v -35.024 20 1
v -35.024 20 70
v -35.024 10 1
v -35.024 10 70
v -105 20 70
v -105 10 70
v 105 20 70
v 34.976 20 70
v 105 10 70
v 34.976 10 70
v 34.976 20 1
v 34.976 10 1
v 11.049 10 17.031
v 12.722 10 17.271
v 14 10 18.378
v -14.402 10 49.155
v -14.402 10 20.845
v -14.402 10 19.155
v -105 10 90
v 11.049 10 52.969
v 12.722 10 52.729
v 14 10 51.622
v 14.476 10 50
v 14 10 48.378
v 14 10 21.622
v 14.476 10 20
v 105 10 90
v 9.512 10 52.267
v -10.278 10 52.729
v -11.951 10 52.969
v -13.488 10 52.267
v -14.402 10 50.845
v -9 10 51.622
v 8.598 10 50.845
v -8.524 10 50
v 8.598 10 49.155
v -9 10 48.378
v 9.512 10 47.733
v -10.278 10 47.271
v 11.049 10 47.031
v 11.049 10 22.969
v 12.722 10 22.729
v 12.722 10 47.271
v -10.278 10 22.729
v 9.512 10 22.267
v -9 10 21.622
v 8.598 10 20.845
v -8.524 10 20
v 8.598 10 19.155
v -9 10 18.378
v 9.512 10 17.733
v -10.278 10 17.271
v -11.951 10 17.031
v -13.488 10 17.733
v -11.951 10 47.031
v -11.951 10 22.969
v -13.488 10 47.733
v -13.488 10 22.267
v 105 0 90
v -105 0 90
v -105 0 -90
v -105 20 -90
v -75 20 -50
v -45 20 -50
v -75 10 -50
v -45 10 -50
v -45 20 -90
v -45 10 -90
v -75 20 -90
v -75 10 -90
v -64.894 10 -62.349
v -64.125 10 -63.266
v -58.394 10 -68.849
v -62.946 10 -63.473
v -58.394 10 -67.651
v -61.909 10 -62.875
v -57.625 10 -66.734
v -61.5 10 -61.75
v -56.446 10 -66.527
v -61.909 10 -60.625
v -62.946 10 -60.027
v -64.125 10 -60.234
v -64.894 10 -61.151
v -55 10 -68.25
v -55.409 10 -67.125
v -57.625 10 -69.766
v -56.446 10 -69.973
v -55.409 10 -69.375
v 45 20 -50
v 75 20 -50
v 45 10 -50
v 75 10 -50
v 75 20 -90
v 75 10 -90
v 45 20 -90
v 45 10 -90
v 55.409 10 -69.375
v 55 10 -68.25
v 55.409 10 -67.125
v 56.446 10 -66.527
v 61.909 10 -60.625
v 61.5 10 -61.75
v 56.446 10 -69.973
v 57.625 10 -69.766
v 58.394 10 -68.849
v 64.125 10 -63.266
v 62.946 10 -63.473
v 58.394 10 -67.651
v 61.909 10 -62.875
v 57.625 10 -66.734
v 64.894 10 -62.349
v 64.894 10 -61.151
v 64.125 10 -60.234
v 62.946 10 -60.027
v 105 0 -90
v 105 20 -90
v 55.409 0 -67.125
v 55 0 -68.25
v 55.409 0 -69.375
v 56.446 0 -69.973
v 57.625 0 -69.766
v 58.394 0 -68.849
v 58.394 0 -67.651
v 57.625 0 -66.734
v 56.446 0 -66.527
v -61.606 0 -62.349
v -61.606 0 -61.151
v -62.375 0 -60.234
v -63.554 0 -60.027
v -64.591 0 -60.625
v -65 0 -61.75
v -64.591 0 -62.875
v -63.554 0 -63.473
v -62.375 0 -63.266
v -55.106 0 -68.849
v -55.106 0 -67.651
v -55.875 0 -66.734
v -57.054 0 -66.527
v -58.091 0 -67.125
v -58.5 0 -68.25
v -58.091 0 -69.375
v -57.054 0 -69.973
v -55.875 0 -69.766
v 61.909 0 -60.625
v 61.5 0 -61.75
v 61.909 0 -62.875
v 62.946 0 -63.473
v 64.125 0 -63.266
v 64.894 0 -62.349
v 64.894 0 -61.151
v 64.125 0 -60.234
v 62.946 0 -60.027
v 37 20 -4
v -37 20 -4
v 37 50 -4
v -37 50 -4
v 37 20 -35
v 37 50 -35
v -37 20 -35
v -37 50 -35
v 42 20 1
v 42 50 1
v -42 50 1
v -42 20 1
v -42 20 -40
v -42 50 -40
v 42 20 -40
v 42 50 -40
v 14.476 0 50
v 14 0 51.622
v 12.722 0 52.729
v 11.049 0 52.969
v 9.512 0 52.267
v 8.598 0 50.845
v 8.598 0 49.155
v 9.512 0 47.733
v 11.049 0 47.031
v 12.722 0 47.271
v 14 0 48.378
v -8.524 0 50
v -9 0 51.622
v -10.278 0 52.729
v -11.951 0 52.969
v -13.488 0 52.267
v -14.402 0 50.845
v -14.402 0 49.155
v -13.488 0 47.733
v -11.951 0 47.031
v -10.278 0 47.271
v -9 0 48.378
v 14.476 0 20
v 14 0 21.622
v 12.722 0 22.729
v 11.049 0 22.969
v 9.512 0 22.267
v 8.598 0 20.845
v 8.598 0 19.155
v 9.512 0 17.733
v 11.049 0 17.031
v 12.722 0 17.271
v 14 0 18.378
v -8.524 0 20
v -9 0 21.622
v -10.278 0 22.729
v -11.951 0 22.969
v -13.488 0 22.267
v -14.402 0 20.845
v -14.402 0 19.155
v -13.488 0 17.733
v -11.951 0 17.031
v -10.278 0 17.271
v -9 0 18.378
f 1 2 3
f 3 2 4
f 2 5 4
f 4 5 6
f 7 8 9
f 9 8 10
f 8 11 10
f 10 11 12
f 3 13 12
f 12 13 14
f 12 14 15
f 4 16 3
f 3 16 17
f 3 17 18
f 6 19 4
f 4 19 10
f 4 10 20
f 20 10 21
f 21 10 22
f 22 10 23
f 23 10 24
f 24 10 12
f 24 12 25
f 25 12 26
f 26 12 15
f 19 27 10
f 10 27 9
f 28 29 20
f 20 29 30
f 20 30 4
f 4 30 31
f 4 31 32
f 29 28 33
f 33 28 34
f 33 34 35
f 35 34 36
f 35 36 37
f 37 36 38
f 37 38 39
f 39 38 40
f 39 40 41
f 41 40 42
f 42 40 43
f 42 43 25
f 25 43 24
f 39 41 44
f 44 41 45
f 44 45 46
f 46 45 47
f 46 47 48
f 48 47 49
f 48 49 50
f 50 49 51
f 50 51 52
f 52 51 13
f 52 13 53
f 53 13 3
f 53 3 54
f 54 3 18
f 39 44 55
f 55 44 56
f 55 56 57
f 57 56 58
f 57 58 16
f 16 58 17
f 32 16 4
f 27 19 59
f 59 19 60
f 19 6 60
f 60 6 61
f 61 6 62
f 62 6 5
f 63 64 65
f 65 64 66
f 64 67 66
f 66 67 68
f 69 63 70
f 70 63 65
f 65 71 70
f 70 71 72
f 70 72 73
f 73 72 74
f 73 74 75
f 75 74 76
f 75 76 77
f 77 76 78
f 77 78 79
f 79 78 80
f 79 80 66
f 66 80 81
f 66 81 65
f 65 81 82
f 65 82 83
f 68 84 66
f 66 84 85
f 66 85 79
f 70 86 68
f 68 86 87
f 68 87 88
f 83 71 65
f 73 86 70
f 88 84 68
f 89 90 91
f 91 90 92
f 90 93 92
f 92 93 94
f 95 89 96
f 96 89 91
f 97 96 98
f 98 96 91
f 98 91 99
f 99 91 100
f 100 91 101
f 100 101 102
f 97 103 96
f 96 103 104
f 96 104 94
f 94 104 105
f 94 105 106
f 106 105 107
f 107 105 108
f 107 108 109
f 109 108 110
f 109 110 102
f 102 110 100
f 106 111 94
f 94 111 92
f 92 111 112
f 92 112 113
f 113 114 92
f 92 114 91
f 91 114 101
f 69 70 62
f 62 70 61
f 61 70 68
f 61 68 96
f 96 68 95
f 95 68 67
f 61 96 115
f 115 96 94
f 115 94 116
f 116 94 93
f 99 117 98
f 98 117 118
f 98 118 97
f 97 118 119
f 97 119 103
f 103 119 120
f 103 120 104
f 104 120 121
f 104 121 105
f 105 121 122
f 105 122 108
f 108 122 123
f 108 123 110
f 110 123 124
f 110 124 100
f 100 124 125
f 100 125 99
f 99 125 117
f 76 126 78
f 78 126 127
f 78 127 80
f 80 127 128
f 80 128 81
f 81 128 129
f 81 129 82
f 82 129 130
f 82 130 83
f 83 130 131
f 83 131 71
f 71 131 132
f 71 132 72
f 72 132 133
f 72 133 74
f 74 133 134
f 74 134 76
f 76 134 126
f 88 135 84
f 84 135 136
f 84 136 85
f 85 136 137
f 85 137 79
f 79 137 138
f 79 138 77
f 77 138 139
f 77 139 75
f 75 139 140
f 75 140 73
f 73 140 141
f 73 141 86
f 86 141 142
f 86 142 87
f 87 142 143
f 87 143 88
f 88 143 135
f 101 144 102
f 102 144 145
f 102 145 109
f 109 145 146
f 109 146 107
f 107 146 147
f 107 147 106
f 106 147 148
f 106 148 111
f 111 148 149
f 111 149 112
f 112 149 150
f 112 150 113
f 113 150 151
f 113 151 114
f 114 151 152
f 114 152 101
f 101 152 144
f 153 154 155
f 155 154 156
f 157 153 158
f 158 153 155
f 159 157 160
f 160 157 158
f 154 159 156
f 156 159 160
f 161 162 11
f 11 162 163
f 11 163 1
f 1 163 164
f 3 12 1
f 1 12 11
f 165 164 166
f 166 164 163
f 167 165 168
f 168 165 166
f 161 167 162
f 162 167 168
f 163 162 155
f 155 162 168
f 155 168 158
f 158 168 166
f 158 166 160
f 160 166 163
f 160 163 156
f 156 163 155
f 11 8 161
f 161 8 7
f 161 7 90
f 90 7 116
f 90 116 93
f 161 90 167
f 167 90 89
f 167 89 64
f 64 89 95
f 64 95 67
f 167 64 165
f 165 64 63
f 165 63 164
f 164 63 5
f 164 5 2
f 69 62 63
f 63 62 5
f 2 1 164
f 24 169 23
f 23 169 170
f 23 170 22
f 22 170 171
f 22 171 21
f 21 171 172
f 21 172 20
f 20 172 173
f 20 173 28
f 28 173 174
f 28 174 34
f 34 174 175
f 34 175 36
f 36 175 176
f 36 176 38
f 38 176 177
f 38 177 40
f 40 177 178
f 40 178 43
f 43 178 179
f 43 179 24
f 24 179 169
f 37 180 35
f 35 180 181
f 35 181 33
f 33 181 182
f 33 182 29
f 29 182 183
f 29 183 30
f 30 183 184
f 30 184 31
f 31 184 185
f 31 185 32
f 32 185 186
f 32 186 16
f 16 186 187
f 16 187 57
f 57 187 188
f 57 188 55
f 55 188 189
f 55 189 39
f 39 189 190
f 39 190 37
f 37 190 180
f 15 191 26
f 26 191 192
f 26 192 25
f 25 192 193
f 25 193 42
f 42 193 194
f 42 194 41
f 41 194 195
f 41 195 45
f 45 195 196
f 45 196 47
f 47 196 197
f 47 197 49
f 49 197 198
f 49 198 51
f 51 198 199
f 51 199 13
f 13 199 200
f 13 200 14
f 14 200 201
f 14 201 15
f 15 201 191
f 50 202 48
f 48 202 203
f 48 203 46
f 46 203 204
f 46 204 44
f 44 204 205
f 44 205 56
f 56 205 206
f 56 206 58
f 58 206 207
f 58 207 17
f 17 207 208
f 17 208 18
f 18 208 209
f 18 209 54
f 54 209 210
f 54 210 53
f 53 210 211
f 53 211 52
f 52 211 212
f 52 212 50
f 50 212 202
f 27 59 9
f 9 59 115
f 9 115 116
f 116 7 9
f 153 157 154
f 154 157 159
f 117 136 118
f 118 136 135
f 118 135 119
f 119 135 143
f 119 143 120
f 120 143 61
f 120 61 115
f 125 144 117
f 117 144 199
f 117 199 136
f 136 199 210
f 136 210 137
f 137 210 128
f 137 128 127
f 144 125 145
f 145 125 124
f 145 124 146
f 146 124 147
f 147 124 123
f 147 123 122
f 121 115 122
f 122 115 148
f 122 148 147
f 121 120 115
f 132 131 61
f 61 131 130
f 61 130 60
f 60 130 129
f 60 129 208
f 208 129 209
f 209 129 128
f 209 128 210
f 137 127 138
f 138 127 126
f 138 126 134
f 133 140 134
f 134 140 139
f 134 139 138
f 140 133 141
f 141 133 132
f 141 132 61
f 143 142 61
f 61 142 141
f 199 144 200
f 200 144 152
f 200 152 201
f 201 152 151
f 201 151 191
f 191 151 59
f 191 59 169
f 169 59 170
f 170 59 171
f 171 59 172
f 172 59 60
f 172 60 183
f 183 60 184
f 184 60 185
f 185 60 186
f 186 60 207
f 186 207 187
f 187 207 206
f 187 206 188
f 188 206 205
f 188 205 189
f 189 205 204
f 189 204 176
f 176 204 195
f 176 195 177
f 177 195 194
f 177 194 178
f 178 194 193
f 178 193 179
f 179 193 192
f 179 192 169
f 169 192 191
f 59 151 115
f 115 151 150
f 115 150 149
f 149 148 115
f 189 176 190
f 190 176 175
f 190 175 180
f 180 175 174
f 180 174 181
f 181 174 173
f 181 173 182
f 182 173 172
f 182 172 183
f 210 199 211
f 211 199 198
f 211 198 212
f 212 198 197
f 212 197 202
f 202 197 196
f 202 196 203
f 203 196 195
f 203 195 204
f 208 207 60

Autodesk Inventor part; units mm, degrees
ref_plane "YZ Plane" through (0, 0, 0) normal (1, 0, 0) x (0, 1, 0)
ref_plane "XZ Plane" through (0, 0, 0) normal (0, 1, 0) x (-1, 0, 0)
ref_plane "XY Plane" through (0, 0, 0) normal (0, 0, 1) x (1, 0, 0)
sketch "Boceto1" plane through (0, 0, 0) normal (0, 1, 0) x (-1, 0, 0)
  line L0 (105, 90) -> (-105, 90)
  line L1 (-105, 90) -> (-105, -90)
  line L2 (-105, -90) -> (105, -90)
  line L3 (105, -90) -> (105, 90)
  line L4 (105, 90) -> (-105, -90) construction
  line L5 (-105, 90) -> (105, -90) construction
  point P0 (0, 0)
  dimension "d0" = 210
  dimension "d1" = 180
extrude "Extrusión1" add sketch "Boceto1" along normal blind 20
sketch "Boceto2" plane through (0, 20, 0) normal (0, 1, 0) x (1, 0, 0)
  line L0 (-105.0239, -70) -> (104.9761, -70)
  line L1 (-105.0239, -70) -> (104.9761, -70)
  circle A0 centre (-11.5239, -50) radius 3
  circle A1 centre (11.4761, -50) radius 3
  circle A2 centre (-11.5239, -20) radius 3
  circle A3 centre (11.4761, -20) radius 3
  line L2 (-105, -90) -> (105, -90) projected
  circle A4 centre (28, 59) radius 3.5
  circle A5 centre (-28, 59) radius 3.5
  line L3 (105, 90) -> (-105, 90) projected
  line L4 (0, 90) -> (0, 53.0386)
  point P0 (0, 0)
  point P1 (0, -225)
  point P2 (0, -225)
  dimension "d4" = 20
  dimension "d5" = 20
  dimension "d6" = 30
  dimension "d7" = 30
  dimension "d8" = 20
  dimension "d9" = 7
  dimension "d11" = 7
  dimension "d12" = 31
  dimension "d13" = 31
  dimension "d14" = 28
  dimension "d15" = 28
extrude "Extrusión2" cut sketch "Boceto2" against normal blind 20 contours A0 | A1 | A2 | A3
sketch "Boceto3" plane through (0, 20, 0) normal (0, 1, 0) x (1, 0, 0)
  line L0 (105, 90) -> (-105, 90) projected
  line L1 (0, 90) -> (0, 58.0056)
  circle A0 centre (-28, 59) radius 3.5 projected
  line L2 (-42, -1) -> (42, -1)
  line L3 (42, -1) -> (42, 40)
  line L4 (42, 40) -> (-42, 40)
  line L5 (-42, 40) -> (-42, -1)
  line L6 (-42, -1) -> (42, 40) construction
  line L7 (42, -1) -> (-42, 40) construction
  circle A1 centre (-11.5239, -20) radius 3 projected
  line L8 (-37, 4) -> (37, 4)
  line L9 (37, 4) -> (37, 35)
  line L10 (37, 35) -> (-37, 35)
  line L11 (-37, 35) -> (-37, 4)
  line L12 (-37, 4) -> (37, 35) construction
  line L13 (37, 4) -> (-37, 35) construction
  point P0 (0, 0)
  point P1 (-24.876, 34.9118)
  point P2 (0, 74.0028)
  point P3 (0, 19.5)
  dimension "d23" = 84
  dimension "d24" = 41
  dimension "d25" = 19
  dimension "d26" = 74
  dimension "d27" = 31
extrude "Extrusión3" add sketch "Boceto3" along normal blind 30 contours L5 L4 L3 L2
sketch "Boceto4" plane through (0, 20, 0) normal (0, 1, 0) x (1, 0, 0)
  circle A0 centre (-56.75, 68.25) radius 1.75
  line L0 (105, 90) -> (-105, 90) projected
  line L1 (-55, 60) -> (-65, 60)
  line L2 (-65, 60) -> (-65, 70)
  line L3 (-65, 70) -> (-55, 70)
  line L4 (-55, 70) -> (-55, 60)
  line L5 (-55, 60) -> (-65, 70) construction
  line L6 (-65, 60) -> (-55, 70) construction
  line L7 (-105, 90) -> (-105, -90) projected
  circle A1 centre (-63.25, 61.75) radius 1.75
  line L8 (0, 90) -> (0, 77.3124)
  circle A2 centre (56.75, 68.25) radius 1.75
  line L9 (55, 60) -> (65, 60)
  line L10 (65, 60) -> (65, 70)
  line L11 (65, 70) -> (55, 70)
  line L12 (55, 70) -> (55, 60)
  line L13 (55, 60) -> (65, 70) construction
  line L14 (65, 60) -> (55, 70) construction
  circle A3 centre (63.25, 61.75) radius 1.75
  point P0 (0, 0)
  point P1 (-65, 65)
  point P2 (65, 65)
  dimension "d30" = 3.5
  dimension "d32" = 40
  dimension "d33" = 1.75
  dimension "d34" = 1.75
  dimension "d35" = 1.75
  dimension "d36" = 1.75
  dimension "d37" = 10
  dimension "d38" = 10
  dimension "d39" = 20
hole "Agujero1" at (-63.25, 20, -61.75) at (-56.75, 20, -68.25) at (56.75, 20, -68.25) at (63.25, 20, -61.75) direction (0, -1, 0) diameter 3.5 end through all
sketch "Boceto5" plane through (0, 20, 0) normal (0, 1, 0) x (1, 0, 0)
  circle A0 centre (56.75, 68.25) radius 1.75 projected
  line L0 (55, 68.25) -> (55, 90.0503)
  circle A1 centre (63.25, 61.75) radius 1.75 projected
  line L1 (65, 61.75) -> (65, 90)
  line L2 (105, 90) -> (-105, 90) projected
  line L3 (55, 90.0503) -> (45.0001, 90)
  line L4 (65, 90) -> (75, 90)
  line L5 (45.0001, 90) -> (75, 90)
  line L6 (75, 90) -> (75, 50)
  line L7 (75, 50) -> (45.0001, 50)
  line L8 (45.0001, 50) -> (45.0001, 90)
  line L9 (0, 90) -> (0, 68.25)
  circle A2 centre (-56.75, 68.25) radius 1.75
  line L10 (-55, 68.25) -> (-55, 90.0503)
  circle A3 centre (-63.25, 61.75) radius 1.75
  line L11 (-65, 61.75) -> (-65, 90)
  line L12 (-105, 90) -> (105, 90)
  line L13 (-55, 90.0503) -> (-45.0001, 90)
  line L14 (-65, 90) -> (-75, 90)
  line L15 (-45.0001, 90) -> (-75, 90)
  line L16 (-75, 90) -> (-75, 50)
  line L17 (-75, 50) -> (-45.0001, 50)
  line L18 (-45.0001, 50) -> (-45.0001, 90)
  point P0 (0, 0)
  dimension "d47" = 10
  dimension "d48" = 10
  dimension "d49" = 40
extrude "Extrusión4" cut sketch "Boceto5" against normal blind 10 contours A0 | A1 | L2 L6 L7 L8 | L18 L17 L16 L2
sketch "Boceto6" plane through (0, 20, 0) normal (0, 1, 0) x (1, 0, 0)
  circle A0 centre (-11.5239, -20) radius 3
  circle A1 centre (11.4761, -20) radius 3
  line L0 (-105, -90) -> (105, -90)
  line L1 (-105.0239, -70) -> (104.9761, -70)
  line L2 (-105.0239, -70) -> (104.9761, -70)
  circle A2 centre (-11.5239, -50) radius 3
  circle A3 centre (11.4761, -50) radius 3
  line L3 (-11.5239, -20) -> (11.4761, -50)
  line L4 (-11.5239, -50) -> (11.4761, -20)
  line L5 (-105, -90) -> (105, -90)
  line L6 (105, -90) -> (95.8154, -90)
  line L7 (-0.0239, -35) -> (34.9761, -35)
  line L8 (-0.0239, -35) -> (-35.0239, -35)
  line L9 (-35.0239, -35) -> (-35.0239, -70)
  line L10 (105, -70) -> (-105, -70)
  line L11 (-35.0239, -70) -> (34.9761, -70)
  line L12 (34.9761, -70) -> (34.9761, -1)
  line L13 (34.9761, -1) -> (-35.0239, -1)
  line L14 (-35.0239, -1) -> (-35.0239, -70)
  line L15 (105, -80) -> (94.0798, -80)
  line L16 (-105, -90) -> (105, -90) projected
  line L17 (-105, -70) -> (105, -70)
  line L18 (105, -70) -> (105, -90)
  line L19 (105, -90) -> (-105, -90)
  line L20 (-105, -90) -> (-105, -70)
  point P0 (0, 0)
  point P1 (0, -80)
  point P2 (-0.0478, -70)
  point P3 (105, -90)
  dimension "d52" = 20
  dimension "d53" = 20
  dimension "d54" = 30
  dimension "d55" = 30
  dimension "d56" = 20
  dimension "d57" = 35
  dimension "d58" = 35
  dimension "d59" = 69
extrude "Extrusión5" cut sketch "Boceto6" against normal blind 10
sketch "Boceto7" plane through (0, 20, 0) normal (0, 1, 0) x (1, 0, 0)
  circle A0 centre (-56.75, 68.25) radius 1.75 projected
  line L0 (-56.75, 66.5) -> (-56.75, 61.75)
  circle A1 centre (-63.25, 61.75) radius 1.75 projected
  line L1 (-56.75, 68.25) -> (-63.25, 61.75)
  point P0 (0, 0)
properties part number "base_front"
